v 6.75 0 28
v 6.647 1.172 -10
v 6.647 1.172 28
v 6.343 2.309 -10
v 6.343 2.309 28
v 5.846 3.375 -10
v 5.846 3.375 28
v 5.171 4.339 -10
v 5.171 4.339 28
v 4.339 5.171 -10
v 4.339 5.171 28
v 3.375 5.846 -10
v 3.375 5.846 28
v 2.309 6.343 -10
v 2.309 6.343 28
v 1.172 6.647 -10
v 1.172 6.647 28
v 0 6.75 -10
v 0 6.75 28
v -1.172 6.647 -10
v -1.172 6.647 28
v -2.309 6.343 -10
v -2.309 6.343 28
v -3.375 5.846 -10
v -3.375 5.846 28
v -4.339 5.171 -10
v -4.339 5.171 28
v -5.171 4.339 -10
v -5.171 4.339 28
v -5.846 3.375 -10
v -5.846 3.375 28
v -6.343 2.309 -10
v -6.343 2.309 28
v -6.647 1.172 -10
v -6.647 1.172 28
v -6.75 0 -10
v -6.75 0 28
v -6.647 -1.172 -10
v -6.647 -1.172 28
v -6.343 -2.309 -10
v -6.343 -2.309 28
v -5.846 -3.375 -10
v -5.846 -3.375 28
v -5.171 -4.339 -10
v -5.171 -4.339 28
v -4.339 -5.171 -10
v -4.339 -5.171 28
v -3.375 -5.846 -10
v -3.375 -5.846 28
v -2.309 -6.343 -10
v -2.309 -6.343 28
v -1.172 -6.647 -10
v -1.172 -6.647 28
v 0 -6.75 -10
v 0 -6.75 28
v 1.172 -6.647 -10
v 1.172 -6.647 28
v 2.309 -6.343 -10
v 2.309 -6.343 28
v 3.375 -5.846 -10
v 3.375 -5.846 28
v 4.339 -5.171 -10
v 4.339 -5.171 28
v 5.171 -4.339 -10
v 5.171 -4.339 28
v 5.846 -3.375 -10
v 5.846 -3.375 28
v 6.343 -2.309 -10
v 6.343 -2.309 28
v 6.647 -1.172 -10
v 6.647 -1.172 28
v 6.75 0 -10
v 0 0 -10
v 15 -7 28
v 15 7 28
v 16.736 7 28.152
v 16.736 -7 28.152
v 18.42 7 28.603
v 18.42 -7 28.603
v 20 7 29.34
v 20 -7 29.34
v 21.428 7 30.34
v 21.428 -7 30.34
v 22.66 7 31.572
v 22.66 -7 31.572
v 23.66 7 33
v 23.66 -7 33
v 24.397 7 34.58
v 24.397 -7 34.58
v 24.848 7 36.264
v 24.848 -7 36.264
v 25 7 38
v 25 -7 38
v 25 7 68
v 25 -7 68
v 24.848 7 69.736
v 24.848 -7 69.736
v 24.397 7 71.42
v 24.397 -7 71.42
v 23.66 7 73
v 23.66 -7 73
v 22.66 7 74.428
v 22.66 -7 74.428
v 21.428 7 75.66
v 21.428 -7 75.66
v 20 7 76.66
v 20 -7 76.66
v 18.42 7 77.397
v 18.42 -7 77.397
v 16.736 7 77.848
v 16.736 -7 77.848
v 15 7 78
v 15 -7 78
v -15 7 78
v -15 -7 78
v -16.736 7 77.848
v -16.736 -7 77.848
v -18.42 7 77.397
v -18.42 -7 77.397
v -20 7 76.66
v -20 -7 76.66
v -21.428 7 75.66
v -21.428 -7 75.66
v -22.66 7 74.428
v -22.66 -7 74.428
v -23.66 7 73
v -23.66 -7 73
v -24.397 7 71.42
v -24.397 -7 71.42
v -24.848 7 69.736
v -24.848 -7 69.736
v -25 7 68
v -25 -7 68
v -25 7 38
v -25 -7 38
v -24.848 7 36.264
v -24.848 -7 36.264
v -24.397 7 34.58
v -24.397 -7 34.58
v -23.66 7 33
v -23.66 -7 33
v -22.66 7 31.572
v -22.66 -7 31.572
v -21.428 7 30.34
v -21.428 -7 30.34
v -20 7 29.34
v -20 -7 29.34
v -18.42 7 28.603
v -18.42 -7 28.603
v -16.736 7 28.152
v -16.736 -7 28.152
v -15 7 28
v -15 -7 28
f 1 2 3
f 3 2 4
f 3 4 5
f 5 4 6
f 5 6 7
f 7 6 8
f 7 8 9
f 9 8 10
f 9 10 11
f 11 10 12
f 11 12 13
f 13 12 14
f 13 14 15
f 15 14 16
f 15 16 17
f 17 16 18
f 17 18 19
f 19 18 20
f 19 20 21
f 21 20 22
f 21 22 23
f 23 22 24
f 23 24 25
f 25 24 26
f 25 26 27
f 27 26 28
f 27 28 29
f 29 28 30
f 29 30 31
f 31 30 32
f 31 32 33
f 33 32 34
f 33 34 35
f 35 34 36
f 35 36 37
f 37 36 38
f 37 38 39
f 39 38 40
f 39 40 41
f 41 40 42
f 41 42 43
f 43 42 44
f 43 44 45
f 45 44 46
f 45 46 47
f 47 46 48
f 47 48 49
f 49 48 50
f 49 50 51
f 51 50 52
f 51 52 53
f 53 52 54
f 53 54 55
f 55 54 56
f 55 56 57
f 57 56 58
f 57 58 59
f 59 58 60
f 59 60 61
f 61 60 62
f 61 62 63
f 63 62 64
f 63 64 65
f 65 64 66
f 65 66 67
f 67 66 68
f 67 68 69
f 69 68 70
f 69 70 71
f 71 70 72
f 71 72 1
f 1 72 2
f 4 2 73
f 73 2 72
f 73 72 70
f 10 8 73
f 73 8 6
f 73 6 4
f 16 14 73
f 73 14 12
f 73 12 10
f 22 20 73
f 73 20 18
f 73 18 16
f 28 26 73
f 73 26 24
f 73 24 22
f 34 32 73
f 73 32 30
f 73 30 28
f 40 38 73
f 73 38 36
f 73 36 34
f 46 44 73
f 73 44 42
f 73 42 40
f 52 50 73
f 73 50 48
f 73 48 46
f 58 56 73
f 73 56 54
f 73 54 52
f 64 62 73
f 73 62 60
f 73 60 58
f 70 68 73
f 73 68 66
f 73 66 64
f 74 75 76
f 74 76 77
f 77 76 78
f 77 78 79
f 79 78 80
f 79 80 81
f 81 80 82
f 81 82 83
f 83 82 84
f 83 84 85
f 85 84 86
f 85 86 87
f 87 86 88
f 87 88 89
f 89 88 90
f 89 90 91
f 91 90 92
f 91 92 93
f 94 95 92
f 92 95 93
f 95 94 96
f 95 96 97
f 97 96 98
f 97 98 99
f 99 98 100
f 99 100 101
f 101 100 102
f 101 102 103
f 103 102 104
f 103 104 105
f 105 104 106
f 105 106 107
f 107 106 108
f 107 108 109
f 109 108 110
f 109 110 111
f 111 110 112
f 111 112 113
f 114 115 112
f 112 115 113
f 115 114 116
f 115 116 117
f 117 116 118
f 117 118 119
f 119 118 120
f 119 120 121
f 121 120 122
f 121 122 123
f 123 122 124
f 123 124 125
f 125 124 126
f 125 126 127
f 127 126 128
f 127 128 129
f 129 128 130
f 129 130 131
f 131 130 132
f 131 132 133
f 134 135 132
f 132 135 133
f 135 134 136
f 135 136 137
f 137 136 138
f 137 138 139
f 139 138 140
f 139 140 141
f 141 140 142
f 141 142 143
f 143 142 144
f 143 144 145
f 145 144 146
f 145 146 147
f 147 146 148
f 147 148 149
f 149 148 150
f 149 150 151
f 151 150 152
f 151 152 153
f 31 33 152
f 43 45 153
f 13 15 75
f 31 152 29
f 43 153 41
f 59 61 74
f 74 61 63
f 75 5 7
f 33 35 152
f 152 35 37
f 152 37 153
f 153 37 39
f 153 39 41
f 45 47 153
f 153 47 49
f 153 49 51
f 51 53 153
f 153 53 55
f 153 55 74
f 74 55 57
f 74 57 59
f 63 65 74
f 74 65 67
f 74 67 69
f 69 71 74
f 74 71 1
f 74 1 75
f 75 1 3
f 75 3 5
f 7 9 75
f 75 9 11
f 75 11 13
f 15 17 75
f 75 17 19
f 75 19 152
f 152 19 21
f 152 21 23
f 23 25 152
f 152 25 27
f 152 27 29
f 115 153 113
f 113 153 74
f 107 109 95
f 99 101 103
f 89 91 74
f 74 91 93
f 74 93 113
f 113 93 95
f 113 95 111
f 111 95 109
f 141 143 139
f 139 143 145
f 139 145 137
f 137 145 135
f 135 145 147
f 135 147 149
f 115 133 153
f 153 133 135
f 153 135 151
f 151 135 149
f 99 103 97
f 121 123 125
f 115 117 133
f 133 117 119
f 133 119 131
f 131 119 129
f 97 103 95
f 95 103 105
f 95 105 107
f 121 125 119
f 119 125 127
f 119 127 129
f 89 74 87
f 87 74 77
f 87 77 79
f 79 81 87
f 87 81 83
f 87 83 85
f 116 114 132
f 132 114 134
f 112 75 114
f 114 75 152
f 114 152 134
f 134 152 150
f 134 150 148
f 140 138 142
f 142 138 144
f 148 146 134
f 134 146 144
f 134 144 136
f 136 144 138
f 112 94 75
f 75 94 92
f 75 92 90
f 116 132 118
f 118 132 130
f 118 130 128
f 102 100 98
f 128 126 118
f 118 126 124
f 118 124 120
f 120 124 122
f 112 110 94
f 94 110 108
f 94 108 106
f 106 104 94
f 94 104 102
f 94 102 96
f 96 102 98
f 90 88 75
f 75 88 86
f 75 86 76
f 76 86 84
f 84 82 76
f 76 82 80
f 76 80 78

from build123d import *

# Parameters (mm, degrees)
BOSS_EXTRUDE1_DEPTH      = 73
BOSS_EXTRUDE1_DEPTH_BACK = 10
SKETCH1_R                = 6.75
BOSS_EXTRUDE2_DEPTH      = 7
BOSS_EXTRUDE2_DEPTH_BACK = 7


with BuildPart() as part:
    # Sketch1 → Boss-Extrude1 (new, two sides: drawn at the far end of the back side and taken through both)
    with BuildSketch(Plane.XY.offset(-BOSS_EXTRUDE1_DEPTH_BACK)):
        Circle(SKETCH1_R)
    extrude(amount=BOSS_EXTRUDE1_DEPTH + BOSS_EXTRUDE1_DEPTH_BACK)

    # Sketch2 → Boss-Extrude2 (add, two sides: drawn at the far end of the back side and taken through both)
    with BuildSketch(Plane(origin=(0, 0, 0), x_dir=(1, 0, 0), z_dir=(0, 1, 0)).offset(-BOSS_EXTRUDE2_DEPTH_BACK)):
        with BuildLine():
            Line((-15, -78), (15, -78))
            ThreePointArc((15, -78), (22.071067812, -75.071067812), (25, -68))
            Line((25, -68), (25, -38))
            ThreePointArc((25, -38), (22.071067812, -30.928932188), (15, -28))
            Line((15, -28), (-15, -28))
            ThreePointArc((-15, -28), (-22.071067812, -30.928932188), (-25, -38))
            Line((-25, -38), (-25, -68))
            ThreePointArc((-25, -68), (-22.071067812, -75.071067812), (-15, -78))
        make_face()
    extrude(amount=BOSS_EXTRUDE2_DEPTH + BOSS_EXTRUDE2_DEPTH_BACK)


solid = part.part
